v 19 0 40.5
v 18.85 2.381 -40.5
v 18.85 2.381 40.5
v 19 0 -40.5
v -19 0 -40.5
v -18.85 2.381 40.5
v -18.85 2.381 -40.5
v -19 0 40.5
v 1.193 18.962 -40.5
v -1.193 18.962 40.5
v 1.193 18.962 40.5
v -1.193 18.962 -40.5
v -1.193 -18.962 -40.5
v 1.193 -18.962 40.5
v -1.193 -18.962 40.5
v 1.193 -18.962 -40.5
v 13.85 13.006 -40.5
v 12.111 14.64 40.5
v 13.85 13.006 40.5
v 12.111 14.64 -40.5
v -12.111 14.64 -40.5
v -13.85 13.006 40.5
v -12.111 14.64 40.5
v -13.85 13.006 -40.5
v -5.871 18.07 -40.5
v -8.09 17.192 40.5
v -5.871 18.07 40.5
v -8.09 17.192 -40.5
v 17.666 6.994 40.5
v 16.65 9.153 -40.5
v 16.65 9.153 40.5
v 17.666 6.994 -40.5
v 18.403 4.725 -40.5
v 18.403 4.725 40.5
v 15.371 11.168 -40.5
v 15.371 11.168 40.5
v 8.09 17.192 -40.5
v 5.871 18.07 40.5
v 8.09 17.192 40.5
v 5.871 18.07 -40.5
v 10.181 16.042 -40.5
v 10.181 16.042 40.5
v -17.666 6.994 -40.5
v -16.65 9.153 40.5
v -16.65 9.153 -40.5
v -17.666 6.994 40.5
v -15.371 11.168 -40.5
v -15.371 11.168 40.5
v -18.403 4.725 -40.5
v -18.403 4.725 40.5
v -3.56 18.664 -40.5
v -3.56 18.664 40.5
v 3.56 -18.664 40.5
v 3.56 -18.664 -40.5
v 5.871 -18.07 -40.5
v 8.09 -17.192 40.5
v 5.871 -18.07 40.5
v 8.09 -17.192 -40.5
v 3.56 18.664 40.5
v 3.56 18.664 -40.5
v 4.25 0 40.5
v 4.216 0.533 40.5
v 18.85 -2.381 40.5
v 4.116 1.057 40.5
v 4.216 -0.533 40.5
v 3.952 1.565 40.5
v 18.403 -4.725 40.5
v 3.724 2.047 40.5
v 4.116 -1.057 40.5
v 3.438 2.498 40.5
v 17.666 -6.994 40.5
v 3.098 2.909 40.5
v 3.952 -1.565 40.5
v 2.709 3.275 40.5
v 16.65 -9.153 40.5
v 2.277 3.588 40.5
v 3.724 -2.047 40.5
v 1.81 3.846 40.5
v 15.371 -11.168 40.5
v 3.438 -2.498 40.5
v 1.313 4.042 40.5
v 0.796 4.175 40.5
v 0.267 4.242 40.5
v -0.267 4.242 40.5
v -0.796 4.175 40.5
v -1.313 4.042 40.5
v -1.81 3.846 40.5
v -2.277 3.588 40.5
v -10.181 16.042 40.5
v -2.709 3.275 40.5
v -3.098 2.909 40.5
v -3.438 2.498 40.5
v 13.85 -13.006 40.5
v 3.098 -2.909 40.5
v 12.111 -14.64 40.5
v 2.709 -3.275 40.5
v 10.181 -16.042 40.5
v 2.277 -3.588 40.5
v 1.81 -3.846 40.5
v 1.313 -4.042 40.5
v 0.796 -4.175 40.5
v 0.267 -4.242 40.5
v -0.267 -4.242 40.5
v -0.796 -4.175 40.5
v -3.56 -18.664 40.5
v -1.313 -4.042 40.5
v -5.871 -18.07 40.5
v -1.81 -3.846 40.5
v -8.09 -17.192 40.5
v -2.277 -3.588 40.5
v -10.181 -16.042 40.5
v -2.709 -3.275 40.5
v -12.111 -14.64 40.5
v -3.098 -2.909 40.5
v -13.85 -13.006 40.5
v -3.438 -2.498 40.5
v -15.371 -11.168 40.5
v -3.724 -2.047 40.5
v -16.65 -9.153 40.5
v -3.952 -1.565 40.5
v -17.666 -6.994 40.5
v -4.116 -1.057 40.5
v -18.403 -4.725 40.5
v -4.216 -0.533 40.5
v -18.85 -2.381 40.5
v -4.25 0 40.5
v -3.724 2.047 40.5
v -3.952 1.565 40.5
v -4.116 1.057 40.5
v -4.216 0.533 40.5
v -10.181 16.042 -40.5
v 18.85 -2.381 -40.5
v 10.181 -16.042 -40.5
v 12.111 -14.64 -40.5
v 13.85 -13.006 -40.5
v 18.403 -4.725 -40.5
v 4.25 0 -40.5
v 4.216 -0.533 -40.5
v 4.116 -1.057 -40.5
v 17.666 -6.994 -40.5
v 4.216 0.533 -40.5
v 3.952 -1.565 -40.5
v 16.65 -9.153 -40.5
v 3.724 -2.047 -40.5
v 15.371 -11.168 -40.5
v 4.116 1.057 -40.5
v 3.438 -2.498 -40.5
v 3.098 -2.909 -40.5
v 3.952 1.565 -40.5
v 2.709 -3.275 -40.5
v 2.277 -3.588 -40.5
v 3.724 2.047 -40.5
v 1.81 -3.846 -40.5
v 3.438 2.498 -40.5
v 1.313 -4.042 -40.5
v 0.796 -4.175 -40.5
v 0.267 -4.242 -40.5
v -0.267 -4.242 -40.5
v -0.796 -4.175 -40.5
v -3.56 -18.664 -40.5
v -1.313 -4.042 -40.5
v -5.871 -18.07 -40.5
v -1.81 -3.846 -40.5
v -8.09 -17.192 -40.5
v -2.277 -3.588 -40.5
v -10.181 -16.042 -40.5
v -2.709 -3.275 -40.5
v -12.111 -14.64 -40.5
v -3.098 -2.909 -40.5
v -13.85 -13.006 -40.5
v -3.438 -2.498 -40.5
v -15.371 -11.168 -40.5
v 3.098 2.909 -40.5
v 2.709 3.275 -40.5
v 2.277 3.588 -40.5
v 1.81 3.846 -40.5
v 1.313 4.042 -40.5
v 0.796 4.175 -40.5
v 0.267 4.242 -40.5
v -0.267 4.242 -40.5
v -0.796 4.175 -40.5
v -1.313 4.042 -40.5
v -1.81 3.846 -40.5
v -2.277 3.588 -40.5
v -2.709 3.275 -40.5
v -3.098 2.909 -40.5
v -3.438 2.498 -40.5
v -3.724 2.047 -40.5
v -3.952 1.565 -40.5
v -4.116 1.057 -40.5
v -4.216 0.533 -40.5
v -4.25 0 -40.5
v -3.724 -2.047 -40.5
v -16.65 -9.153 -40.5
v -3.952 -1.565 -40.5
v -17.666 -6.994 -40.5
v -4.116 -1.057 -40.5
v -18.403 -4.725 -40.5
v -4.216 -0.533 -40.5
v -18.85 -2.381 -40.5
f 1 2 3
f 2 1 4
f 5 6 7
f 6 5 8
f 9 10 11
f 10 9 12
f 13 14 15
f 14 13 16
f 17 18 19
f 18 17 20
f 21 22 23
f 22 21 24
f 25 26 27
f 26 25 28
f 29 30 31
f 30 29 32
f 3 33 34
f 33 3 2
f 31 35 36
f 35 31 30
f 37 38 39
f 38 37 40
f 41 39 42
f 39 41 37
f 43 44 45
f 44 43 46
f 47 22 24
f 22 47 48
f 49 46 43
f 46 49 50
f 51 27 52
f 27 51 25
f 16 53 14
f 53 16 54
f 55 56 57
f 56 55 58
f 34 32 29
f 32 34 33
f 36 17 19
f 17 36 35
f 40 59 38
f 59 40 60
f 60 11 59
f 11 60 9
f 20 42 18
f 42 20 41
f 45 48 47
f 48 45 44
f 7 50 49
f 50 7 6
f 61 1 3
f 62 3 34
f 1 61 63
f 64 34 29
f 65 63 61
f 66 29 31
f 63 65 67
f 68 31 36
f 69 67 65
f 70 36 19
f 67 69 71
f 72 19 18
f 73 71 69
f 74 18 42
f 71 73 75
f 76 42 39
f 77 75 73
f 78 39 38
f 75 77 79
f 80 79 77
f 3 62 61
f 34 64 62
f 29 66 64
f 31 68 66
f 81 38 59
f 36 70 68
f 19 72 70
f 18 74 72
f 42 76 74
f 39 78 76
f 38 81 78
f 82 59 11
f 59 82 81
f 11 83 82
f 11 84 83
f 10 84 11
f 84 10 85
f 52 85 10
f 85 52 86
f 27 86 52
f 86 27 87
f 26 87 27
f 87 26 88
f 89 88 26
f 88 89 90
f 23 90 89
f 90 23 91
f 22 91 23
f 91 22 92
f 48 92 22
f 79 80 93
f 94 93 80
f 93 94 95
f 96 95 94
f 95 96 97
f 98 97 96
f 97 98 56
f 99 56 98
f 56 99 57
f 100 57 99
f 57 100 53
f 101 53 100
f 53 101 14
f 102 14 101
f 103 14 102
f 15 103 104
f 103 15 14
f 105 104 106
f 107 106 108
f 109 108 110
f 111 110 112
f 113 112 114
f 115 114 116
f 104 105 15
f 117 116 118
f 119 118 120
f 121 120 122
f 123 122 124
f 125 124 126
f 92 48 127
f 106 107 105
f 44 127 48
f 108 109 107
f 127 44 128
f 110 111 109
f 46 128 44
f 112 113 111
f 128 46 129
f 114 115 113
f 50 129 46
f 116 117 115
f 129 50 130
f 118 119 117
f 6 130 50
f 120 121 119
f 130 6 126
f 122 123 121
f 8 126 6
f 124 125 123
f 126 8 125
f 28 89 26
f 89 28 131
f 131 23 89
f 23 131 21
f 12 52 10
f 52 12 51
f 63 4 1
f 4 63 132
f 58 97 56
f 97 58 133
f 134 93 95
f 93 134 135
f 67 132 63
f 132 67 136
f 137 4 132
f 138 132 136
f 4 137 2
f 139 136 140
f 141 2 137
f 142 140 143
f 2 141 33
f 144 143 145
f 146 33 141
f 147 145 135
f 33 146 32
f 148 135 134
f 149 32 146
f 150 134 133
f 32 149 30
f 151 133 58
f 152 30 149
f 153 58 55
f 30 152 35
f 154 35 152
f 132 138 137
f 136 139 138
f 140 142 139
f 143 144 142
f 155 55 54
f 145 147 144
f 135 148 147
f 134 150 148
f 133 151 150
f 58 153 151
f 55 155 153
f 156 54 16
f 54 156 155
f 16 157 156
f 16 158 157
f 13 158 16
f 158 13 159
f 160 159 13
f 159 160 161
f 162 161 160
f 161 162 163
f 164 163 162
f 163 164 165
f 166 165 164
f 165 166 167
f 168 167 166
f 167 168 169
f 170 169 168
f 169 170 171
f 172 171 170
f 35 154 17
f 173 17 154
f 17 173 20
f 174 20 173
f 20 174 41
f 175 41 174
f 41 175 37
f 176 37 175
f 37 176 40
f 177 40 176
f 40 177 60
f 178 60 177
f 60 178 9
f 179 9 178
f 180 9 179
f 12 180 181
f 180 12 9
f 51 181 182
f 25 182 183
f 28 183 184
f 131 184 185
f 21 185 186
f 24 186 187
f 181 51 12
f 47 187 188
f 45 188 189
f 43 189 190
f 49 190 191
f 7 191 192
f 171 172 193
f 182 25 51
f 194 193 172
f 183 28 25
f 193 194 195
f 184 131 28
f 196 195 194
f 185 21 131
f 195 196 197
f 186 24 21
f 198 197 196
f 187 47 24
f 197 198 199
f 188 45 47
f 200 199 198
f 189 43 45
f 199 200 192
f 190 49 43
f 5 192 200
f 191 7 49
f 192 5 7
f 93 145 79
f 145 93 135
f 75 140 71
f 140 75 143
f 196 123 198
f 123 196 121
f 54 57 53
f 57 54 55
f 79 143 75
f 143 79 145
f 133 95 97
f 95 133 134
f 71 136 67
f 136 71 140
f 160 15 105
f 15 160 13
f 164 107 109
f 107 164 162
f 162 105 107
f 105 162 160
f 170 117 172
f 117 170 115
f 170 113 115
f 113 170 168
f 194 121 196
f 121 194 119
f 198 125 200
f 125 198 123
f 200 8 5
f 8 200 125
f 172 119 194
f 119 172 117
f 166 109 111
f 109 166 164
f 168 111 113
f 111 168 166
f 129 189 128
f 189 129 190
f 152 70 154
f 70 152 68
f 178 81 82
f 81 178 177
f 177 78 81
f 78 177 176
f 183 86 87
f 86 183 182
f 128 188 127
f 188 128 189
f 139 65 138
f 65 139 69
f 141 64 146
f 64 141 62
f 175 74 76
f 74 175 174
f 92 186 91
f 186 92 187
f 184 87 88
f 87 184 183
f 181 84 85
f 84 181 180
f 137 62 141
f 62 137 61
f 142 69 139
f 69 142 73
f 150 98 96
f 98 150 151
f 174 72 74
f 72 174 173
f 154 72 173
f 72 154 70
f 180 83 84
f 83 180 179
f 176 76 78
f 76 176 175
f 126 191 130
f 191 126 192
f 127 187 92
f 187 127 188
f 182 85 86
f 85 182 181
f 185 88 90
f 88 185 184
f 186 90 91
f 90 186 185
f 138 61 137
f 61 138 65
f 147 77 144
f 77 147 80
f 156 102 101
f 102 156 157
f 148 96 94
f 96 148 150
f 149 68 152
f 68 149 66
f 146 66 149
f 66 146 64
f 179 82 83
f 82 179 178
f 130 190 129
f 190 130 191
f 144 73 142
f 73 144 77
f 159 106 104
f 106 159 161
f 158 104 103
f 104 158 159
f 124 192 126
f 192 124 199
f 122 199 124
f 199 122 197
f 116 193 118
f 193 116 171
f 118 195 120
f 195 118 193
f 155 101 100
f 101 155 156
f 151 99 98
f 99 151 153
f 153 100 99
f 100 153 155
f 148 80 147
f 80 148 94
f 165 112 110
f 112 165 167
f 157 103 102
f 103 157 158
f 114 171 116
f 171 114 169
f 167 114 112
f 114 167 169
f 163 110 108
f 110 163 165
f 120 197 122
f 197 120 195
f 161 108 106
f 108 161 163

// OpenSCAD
$fn = 50;


difference() {
	union() {
		translate(v = [0, 0, -40.5000000000]) {
			cylinder(h = 81, r = 19.0000000000);
		}
	}
	union() {
		translate(v = [0, 0, -100.0000000000]) {
			cylinder(h = 200, r = 4.2500000000);
		}
	}
}
